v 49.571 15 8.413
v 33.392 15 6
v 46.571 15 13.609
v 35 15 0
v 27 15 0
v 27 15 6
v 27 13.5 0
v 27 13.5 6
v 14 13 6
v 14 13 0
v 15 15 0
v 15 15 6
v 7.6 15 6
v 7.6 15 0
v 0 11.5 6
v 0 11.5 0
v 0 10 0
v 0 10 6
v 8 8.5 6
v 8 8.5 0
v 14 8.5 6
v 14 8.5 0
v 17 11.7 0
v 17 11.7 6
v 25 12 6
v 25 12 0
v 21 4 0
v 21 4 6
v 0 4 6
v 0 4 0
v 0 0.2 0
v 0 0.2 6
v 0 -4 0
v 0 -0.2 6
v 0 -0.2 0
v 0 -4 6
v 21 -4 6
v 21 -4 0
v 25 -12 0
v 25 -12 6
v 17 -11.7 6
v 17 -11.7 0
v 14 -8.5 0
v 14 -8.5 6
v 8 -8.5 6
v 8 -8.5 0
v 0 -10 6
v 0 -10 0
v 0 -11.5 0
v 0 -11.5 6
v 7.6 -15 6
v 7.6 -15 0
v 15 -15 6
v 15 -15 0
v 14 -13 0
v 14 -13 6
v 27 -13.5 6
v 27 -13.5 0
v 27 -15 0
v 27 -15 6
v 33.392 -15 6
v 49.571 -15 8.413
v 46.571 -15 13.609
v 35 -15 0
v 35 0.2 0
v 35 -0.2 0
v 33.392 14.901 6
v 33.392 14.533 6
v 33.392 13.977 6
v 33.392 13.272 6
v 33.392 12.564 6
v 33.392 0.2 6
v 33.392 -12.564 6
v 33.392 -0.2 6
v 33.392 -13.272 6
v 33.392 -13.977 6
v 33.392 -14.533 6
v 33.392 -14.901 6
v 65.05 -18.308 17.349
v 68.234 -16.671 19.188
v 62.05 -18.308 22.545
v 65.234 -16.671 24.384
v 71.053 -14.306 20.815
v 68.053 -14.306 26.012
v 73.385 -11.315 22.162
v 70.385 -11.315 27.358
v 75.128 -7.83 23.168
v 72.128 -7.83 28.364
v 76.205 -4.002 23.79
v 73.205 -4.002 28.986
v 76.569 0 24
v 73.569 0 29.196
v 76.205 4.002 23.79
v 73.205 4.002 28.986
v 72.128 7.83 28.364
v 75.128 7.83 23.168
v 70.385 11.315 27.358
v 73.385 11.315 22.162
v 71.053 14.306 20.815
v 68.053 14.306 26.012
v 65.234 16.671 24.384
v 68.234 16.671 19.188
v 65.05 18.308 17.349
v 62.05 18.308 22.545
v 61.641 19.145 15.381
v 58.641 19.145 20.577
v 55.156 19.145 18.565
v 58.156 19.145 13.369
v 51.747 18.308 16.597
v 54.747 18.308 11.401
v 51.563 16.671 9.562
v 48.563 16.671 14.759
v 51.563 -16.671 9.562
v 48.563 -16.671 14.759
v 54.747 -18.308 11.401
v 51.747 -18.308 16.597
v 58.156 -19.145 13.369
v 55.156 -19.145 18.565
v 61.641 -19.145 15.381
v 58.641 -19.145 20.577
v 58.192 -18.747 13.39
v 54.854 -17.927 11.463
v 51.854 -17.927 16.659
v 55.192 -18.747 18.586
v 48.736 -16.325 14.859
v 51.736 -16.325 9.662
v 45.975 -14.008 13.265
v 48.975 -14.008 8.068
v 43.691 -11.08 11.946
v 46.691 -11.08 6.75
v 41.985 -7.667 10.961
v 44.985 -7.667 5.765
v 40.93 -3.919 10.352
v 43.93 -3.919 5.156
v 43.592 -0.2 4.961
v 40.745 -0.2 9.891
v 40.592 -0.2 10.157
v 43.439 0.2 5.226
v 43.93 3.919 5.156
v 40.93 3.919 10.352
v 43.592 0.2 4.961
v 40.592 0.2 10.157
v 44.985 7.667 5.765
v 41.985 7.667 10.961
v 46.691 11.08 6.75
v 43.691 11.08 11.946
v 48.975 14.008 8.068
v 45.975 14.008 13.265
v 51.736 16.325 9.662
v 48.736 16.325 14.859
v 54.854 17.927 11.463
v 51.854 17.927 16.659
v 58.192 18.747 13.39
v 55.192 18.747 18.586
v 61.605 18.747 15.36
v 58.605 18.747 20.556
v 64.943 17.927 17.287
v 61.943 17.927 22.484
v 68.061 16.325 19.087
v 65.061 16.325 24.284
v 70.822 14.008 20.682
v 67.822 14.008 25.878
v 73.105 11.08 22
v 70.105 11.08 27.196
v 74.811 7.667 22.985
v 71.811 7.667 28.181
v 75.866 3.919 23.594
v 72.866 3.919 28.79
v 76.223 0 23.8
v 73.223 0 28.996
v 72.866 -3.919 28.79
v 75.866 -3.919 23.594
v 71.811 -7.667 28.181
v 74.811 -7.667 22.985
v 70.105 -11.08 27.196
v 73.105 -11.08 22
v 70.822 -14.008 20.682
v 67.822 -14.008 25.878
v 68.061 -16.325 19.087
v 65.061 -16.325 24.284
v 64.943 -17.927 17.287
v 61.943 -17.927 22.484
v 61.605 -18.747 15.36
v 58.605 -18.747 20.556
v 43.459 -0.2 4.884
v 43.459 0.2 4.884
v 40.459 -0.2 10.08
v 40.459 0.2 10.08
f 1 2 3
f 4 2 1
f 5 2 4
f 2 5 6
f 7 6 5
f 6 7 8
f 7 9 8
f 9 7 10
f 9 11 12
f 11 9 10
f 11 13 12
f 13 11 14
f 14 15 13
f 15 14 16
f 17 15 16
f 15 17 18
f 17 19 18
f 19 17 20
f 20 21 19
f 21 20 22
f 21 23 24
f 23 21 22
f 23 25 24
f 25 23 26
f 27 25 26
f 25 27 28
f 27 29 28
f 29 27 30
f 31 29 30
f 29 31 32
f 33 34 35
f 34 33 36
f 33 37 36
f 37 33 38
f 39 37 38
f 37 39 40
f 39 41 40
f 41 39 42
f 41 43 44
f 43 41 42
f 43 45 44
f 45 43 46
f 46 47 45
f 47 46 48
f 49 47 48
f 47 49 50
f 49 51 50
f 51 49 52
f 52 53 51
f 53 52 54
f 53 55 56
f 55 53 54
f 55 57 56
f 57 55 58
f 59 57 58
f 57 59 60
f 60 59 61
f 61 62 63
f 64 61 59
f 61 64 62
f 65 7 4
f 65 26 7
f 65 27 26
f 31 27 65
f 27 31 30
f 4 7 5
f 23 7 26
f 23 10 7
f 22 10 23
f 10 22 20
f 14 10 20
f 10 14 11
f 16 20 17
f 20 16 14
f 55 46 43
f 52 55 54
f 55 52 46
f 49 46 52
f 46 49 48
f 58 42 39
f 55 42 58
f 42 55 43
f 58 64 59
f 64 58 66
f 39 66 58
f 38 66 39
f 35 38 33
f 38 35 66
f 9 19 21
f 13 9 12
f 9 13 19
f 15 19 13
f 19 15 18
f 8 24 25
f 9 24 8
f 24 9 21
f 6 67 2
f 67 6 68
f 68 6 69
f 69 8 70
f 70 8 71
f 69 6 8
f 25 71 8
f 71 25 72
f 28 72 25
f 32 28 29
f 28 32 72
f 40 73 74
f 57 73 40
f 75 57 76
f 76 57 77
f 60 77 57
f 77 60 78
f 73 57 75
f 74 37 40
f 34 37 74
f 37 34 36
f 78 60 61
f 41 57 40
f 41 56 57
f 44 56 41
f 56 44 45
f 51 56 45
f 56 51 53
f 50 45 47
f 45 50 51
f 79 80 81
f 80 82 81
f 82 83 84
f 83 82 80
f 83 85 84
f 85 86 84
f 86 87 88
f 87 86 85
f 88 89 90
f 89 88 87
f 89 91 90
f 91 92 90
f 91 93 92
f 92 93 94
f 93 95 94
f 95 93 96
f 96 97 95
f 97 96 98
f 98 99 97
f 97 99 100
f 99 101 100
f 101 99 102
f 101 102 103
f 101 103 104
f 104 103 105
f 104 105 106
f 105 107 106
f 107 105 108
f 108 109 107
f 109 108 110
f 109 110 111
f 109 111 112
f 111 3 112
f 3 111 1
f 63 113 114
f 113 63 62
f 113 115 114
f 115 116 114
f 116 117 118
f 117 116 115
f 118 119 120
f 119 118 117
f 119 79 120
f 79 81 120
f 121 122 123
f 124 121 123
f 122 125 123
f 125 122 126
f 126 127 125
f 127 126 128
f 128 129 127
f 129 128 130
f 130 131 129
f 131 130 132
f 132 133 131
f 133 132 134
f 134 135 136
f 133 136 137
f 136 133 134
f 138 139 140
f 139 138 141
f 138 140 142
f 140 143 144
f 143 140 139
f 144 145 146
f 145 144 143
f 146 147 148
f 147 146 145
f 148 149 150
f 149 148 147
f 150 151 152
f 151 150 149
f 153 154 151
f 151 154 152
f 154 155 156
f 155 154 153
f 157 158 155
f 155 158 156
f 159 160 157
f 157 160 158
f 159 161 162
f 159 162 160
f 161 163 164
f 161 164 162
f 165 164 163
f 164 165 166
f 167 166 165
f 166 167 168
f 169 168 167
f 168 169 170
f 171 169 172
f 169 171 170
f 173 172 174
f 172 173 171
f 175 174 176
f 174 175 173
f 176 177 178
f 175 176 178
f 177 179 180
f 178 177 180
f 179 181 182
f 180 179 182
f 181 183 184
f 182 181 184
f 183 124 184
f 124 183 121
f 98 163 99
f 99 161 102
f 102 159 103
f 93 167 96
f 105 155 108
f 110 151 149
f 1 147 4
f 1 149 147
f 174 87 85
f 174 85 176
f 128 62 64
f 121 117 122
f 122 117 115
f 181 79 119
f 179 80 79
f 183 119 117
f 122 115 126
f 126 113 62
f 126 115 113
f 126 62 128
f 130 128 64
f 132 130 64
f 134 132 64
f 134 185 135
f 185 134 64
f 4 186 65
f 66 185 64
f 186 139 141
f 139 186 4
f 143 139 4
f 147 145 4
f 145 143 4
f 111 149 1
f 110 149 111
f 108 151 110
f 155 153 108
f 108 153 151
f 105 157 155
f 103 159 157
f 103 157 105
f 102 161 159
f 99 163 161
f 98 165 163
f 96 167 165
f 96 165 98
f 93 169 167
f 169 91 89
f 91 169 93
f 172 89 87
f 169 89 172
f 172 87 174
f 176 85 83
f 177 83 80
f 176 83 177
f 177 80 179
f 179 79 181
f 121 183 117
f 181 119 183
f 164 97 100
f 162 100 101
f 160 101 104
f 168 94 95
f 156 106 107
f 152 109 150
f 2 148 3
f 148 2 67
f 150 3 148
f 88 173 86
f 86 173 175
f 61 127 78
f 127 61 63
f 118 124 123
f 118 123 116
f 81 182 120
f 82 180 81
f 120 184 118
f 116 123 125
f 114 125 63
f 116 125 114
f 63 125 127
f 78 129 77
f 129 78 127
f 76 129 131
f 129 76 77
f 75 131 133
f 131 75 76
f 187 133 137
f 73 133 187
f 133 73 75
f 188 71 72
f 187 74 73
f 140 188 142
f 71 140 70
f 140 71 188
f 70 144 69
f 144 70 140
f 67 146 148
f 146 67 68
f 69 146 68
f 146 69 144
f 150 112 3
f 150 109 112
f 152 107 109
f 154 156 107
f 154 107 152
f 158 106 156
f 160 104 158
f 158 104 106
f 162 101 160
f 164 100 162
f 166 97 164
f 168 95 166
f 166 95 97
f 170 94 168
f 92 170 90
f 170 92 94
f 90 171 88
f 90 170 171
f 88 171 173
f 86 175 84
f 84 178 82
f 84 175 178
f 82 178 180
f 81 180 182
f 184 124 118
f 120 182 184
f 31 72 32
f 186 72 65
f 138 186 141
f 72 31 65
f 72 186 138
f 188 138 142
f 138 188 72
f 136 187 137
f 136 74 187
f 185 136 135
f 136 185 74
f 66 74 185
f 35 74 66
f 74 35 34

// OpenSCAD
module half() {
polygon(
    [[0, 15-3.5], [7.6, 15], [15, 15], [14, 13], [27, 15-1.5], [27, 15], [35, 15], 
     [35, 0], [0, 0], [0, 4], [21, 4], [25, 12], [17, 11.7], [14, 8.5], [8, 8.5], [0, 10]]);
}

difference() {

union() {
linear_extrude(height=6)
union() {
    half();     
    mirror([0,1,0]) half();
}

translate([35, 0, 0])
rotate([0, -30, 0])
linear_extrude(height=6)
translate([37.5/2+10, 0, 0])
difference() {

union() {
    translate([-37.5/2, 0, 0])
    square([20, 30], center=true);
    circle(d=38.5);
}

circle(d=37.7);
}

}

translate([24, 0, 7])
cube([50, 0.4, 15], center=true);
}
